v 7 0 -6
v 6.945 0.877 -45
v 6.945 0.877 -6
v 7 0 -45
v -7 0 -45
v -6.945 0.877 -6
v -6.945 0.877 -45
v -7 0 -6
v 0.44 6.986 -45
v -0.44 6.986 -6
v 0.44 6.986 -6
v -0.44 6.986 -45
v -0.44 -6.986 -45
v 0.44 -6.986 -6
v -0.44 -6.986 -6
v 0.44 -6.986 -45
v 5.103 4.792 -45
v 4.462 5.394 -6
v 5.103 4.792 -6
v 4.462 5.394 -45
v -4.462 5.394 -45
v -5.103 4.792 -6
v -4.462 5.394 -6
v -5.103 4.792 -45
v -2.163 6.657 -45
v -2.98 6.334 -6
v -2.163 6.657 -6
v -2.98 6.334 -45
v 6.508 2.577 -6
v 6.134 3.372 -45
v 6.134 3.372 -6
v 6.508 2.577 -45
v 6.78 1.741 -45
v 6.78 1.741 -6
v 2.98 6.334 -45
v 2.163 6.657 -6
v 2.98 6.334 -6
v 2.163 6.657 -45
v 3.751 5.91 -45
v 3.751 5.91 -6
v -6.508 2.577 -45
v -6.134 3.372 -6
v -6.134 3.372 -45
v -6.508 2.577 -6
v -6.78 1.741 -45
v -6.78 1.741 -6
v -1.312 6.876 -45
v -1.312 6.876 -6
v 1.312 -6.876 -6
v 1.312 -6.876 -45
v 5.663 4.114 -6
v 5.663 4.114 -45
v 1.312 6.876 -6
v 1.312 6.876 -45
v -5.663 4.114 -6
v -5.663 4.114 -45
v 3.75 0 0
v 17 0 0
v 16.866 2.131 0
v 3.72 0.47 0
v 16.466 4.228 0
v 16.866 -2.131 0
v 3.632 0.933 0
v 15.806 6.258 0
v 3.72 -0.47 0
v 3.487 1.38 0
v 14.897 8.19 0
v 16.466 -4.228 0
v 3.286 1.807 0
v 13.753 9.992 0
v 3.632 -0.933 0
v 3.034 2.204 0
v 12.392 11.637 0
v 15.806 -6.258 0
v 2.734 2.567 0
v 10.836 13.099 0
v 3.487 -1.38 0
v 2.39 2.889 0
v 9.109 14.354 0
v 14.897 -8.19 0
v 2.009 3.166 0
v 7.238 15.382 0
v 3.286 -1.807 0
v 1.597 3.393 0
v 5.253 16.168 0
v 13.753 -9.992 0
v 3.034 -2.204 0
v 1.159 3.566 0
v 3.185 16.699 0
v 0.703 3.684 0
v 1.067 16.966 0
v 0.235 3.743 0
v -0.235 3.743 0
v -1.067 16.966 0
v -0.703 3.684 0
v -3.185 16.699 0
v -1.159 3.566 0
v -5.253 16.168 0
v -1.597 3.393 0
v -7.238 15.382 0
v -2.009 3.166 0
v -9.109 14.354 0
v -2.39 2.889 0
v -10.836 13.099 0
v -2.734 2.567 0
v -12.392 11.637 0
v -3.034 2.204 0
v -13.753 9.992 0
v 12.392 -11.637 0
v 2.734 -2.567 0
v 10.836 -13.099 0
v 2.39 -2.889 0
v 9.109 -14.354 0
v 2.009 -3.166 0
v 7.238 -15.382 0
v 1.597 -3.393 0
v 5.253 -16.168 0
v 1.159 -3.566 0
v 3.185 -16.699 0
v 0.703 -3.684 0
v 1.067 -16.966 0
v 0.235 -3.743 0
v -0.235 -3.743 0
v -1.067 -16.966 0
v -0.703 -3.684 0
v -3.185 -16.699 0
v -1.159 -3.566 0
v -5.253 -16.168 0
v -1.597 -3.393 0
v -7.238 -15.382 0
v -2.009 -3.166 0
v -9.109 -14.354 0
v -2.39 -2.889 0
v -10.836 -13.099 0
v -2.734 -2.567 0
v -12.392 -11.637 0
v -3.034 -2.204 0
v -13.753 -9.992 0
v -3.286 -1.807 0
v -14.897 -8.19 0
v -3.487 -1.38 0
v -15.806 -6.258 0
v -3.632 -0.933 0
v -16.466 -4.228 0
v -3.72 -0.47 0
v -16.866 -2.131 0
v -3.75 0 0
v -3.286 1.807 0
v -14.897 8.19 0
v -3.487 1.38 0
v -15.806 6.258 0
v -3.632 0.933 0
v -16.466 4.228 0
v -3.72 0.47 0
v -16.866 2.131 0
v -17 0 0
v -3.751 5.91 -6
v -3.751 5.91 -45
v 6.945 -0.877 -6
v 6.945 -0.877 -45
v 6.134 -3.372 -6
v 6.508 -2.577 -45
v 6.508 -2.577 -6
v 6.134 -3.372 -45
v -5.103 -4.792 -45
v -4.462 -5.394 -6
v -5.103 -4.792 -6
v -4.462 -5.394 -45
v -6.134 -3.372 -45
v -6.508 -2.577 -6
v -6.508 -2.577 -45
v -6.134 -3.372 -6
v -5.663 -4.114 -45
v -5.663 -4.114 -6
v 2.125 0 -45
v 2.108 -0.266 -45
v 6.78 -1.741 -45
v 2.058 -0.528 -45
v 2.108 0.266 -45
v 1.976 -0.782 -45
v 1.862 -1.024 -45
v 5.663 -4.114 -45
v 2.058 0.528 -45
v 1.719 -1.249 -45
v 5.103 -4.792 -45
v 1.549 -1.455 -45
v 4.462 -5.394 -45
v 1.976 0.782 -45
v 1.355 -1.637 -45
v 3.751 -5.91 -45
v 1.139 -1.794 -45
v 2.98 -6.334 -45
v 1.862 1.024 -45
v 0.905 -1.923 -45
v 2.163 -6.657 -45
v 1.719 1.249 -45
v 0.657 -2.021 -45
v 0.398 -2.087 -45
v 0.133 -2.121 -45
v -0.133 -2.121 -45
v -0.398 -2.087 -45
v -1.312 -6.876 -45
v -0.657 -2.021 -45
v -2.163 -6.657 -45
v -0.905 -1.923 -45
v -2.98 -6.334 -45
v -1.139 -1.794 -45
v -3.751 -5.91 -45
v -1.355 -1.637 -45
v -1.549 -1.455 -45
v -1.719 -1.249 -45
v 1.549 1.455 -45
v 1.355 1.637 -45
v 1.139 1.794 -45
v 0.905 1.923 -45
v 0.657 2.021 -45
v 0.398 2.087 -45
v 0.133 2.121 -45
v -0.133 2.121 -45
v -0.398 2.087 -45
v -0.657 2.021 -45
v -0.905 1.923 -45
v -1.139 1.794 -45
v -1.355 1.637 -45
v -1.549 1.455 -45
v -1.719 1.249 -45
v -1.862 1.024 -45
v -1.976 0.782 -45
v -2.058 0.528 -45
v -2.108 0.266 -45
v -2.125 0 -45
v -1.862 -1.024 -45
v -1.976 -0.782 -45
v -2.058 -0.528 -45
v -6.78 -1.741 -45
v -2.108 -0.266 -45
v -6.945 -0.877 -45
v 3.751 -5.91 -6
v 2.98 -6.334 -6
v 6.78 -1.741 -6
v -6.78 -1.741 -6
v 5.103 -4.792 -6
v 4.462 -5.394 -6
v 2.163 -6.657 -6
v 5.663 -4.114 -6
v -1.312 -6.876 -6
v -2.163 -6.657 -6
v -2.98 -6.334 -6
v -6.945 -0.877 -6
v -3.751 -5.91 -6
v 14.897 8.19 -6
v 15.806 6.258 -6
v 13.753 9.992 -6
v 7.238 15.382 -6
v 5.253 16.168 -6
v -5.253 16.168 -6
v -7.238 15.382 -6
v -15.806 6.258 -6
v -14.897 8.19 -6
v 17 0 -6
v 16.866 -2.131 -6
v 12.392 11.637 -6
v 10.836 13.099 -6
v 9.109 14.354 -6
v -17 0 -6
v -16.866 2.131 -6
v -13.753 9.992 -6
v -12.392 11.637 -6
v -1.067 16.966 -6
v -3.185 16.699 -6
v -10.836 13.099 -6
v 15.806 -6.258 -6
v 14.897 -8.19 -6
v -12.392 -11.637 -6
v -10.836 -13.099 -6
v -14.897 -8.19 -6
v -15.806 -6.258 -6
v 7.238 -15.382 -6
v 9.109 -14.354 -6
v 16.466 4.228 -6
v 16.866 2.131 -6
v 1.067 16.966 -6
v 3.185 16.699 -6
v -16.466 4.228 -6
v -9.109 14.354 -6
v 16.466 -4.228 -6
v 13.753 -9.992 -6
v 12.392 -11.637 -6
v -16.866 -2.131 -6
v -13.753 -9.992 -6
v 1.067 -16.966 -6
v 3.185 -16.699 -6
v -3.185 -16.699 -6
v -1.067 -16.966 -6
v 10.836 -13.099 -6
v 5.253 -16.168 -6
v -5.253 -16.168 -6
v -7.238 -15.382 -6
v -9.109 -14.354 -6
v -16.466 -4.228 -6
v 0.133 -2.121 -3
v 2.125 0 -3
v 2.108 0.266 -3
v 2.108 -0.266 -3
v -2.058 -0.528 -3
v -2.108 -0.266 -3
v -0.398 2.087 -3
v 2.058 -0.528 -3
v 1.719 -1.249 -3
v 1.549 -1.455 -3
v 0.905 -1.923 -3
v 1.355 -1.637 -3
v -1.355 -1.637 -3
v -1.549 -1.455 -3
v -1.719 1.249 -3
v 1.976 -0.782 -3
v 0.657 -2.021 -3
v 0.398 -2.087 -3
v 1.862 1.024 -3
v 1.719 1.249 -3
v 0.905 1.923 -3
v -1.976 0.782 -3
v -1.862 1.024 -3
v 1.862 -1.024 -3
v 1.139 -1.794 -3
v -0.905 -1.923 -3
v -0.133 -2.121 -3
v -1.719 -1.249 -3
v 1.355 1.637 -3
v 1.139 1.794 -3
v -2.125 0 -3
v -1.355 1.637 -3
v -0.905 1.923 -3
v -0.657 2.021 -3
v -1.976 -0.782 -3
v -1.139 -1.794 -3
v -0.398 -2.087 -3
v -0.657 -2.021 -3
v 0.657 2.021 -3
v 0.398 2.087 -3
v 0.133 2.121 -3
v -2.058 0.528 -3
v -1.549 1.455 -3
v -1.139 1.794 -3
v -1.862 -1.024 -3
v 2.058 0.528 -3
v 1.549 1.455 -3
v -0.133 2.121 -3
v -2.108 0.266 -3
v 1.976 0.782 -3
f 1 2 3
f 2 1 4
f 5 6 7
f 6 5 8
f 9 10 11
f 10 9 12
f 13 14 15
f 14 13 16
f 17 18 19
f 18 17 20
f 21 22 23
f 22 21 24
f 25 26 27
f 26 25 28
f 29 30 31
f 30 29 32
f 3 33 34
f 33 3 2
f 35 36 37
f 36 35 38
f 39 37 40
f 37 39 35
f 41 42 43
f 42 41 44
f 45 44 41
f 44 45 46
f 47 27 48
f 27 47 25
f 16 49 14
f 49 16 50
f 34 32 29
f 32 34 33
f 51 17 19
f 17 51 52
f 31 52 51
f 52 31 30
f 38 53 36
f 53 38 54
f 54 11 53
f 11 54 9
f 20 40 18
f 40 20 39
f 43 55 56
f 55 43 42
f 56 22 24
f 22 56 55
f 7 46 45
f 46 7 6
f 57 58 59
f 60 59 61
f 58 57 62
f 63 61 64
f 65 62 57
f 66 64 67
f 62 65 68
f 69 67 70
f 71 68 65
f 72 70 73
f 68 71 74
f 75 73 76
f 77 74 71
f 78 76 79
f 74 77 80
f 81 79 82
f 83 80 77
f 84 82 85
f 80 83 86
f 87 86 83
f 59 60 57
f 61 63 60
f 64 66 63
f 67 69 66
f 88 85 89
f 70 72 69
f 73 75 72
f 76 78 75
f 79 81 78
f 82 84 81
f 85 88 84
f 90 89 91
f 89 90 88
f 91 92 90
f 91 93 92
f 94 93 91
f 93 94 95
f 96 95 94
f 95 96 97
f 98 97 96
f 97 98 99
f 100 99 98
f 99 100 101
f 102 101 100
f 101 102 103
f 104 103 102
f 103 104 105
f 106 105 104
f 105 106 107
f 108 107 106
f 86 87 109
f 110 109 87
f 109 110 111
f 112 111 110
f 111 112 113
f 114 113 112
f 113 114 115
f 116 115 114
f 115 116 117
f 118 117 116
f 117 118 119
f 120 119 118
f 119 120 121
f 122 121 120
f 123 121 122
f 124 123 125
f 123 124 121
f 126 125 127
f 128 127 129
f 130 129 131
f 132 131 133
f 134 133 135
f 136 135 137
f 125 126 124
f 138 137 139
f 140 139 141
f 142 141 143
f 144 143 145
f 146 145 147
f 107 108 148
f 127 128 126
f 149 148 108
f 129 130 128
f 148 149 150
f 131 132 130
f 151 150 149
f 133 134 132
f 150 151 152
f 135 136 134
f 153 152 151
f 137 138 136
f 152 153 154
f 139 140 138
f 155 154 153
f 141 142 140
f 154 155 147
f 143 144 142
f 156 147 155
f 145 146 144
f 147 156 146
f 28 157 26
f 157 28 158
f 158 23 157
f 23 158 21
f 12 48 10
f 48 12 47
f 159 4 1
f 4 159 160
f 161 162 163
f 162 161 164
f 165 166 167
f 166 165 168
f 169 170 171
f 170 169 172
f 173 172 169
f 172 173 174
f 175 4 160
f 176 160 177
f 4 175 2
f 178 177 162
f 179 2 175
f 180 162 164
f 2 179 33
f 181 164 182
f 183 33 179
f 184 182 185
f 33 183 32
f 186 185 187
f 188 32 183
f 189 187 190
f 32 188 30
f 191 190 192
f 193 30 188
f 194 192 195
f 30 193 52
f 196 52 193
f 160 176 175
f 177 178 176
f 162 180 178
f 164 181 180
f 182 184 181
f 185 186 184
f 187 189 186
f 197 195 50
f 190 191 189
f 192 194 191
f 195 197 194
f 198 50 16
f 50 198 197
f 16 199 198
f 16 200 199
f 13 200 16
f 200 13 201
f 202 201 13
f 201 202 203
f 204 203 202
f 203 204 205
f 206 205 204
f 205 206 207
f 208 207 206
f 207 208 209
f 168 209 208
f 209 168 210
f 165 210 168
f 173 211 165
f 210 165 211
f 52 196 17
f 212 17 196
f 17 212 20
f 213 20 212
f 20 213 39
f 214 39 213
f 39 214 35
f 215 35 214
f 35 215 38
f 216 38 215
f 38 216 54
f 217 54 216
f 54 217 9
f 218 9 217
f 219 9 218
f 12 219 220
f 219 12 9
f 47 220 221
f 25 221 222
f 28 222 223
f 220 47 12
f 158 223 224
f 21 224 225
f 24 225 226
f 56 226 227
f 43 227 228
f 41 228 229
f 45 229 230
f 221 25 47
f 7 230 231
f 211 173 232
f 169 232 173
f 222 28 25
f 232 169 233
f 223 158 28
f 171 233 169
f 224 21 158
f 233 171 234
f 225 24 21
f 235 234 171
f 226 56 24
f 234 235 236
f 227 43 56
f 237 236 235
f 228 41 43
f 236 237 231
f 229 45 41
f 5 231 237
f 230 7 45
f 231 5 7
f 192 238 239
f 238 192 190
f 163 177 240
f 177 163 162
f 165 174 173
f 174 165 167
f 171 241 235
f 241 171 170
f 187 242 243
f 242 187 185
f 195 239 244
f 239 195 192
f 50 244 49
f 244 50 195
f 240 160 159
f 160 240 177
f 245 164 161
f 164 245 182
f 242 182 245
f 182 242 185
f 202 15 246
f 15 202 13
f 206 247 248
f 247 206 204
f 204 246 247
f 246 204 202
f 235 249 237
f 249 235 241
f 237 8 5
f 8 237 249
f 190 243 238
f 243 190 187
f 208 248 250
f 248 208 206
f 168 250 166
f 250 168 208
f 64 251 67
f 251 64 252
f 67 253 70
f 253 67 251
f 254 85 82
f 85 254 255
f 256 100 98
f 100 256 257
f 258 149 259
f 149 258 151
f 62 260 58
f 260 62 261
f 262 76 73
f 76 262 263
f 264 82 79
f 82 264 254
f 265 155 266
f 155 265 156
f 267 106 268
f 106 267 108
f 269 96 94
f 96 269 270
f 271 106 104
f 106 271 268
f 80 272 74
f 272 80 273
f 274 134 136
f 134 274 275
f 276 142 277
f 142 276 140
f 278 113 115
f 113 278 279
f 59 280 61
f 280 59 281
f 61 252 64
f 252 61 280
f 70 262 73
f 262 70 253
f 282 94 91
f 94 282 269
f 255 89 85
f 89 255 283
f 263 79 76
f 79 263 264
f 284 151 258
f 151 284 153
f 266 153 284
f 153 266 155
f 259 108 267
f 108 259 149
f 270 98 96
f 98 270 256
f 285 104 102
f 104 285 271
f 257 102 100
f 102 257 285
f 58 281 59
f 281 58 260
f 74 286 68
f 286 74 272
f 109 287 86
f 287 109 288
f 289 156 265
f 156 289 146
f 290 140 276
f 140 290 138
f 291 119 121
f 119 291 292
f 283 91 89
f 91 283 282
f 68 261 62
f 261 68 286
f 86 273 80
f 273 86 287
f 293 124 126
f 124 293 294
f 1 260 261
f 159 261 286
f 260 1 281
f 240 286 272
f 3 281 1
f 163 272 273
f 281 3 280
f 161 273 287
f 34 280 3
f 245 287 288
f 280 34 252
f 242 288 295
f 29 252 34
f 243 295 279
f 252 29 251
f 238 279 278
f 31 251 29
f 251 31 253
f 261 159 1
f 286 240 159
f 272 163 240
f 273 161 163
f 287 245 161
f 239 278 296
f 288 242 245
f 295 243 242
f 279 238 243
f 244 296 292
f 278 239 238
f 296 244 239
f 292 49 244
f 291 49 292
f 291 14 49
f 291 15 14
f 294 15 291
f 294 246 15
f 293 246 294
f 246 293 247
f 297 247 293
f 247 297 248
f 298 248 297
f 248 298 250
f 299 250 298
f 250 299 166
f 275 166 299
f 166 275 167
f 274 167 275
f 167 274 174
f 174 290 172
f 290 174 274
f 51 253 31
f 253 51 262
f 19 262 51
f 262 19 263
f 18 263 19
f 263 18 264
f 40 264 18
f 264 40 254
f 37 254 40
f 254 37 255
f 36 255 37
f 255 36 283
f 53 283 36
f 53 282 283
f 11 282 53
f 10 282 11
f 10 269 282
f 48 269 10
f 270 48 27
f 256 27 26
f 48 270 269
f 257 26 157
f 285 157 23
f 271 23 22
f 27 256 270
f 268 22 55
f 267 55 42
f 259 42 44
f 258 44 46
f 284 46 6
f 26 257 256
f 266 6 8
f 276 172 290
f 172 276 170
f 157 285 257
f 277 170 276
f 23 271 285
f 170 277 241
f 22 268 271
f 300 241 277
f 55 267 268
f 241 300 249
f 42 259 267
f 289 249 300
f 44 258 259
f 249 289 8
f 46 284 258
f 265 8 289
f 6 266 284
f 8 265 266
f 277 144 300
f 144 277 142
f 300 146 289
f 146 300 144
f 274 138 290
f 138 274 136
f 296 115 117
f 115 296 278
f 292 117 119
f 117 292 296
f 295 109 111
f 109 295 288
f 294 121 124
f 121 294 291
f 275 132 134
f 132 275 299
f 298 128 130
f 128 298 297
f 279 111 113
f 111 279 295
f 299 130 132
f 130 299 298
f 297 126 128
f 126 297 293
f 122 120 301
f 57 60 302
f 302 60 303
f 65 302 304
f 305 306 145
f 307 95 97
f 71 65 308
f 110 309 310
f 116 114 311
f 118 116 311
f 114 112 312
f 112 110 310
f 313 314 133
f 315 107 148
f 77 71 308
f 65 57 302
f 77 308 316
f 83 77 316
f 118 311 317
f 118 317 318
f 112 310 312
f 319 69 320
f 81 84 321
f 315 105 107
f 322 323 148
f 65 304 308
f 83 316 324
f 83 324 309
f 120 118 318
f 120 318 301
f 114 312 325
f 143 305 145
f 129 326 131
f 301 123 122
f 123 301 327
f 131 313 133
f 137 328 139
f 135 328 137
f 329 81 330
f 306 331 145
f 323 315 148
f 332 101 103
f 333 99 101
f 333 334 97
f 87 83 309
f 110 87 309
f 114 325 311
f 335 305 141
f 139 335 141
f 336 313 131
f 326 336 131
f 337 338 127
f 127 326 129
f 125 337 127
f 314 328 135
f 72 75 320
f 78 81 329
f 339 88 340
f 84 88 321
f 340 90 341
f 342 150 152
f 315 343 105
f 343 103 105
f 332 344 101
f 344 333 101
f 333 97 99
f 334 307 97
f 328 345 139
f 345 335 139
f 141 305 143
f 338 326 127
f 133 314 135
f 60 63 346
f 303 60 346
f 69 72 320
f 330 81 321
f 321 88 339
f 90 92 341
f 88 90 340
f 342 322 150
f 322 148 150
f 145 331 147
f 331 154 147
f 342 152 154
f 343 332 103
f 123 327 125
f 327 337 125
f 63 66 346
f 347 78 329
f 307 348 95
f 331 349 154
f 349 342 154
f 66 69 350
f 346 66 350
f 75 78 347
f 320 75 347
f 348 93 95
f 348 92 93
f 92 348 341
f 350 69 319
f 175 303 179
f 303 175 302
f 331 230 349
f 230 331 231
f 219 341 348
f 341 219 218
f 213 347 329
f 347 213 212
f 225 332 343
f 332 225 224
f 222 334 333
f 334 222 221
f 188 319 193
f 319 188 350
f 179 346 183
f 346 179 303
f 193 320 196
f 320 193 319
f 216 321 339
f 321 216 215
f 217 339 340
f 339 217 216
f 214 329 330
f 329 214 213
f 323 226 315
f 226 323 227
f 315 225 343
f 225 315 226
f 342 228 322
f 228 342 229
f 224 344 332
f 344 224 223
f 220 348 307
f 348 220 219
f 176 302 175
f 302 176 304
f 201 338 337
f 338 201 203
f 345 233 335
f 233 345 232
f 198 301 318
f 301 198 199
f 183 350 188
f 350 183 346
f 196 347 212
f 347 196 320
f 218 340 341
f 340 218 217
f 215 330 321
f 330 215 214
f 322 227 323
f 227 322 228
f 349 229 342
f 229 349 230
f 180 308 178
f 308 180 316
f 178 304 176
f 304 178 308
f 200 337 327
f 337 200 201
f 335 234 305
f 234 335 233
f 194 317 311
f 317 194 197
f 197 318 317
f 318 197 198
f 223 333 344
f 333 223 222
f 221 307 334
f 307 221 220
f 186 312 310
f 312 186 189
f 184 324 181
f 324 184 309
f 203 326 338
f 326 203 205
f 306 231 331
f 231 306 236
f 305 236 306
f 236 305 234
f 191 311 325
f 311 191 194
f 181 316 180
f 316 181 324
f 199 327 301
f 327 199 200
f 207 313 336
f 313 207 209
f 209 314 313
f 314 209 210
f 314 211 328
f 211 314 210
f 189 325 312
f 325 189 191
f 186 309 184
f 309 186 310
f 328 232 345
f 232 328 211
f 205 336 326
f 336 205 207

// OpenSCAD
$fn = 50;


difference() {
	union() {
		translate(v = [0, 0, -45.0000000000]) {
			cylinder(h = 45, r = 7.0000000000);
		}
		translate(v = [0, 0, -6.0000000000]) {
			cylinder(h = 6, r = 17.0000000000);
		}
	}
	union() {
		translate(v = [0, 0, 0]) {
			rotate(a = [0, 0, 0]) {
				difference() {
					union() {
						#translate(v = [0, 0, -45.0000000000]) {
							cylinder(h = 45, r = 2.0000000000);
						}
						#translate(v = [0, 0, -3]) {
							cylinder(h = 3, r1 = 2.1250000000, r2 = 3.7500000000);
						}
						#translate(v = [0, 0, -45.0000000000]) {
							cylinder(h = 45, r = 2.1250000000);
						}
						#translate(v = [0, 0, -45.0000000000]) {
							cylinder(h = 45, r = 2.0000000000);
						}
					}
					union();
				}
			}
		}
	}
}
